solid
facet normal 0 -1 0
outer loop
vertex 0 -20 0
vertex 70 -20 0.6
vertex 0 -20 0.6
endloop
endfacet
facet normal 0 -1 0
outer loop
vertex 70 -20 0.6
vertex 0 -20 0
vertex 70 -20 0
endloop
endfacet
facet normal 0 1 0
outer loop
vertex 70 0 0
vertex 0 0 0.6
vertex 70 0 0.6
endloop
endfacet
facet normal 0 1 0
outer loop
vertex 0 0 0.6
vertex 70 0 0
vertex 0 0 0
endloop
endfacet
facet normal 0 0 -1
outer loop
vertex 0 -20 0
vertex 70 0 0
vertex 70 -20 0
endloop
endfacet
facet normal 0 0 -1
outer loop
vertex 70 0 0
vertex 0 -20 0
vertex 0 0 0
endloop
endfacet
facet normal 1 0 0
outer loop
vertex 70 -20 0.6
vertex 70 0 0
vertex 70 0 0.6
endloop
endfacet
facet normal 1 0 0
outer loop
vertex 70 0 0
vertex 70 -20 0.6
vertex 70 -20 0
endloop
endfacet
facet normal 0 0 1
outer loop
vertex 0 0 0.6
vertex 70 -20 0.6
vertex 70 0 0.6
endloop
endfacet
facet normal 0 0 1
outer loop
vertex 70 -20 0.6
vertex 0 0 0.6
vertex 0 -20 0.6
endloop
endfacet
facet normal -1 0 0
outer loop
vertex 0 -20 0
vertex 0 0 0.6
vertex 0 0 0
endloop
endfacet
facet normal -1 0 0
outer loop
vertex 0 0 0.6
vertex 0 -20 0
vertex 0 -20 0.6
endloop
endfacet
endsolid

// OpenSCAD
//use <C:/Users/rolan/Downloads/Atarian/SF Atarian System.ttf>

thick = 2;
xmax = 250;
ymax = 180+thick;
zmax = 39;

edge=5;

//translate([230,15,0])
//    ataritext();
rotate([90, 0, 0])
    cube([70, 0.6, 20]);
//ataritext();
/*
difference(){
    atarilogo();
//    translate([230,17,0])
//        ataritext();
}*/

module atarilogo() {
    translate([0,32.5,0])
        base_shape_a();
}

module ataritext() {
    linear_extrude(0.3)
        mirror([1,0,0])
        text("ATARI ", 10, "SF Atarian System:style=Regular");

    translate([-30, 0, 0])
    linear_extrude(0.4)
        mirror([1,0,0])
    text("SALLY 2 ", 8, "SF Atarian System:style=Regular");
}

module base_shape_a() {
        rotate([90,0,0]) 
            linear_extrude(20)
                base_shape_2d_a(1.0);
}


module base_shape_2d_a(th) {
    polygon([/* [0, zmax], */ [0, edge], [edge,0], [xmax-edge, 0], [xmax, edge], /*[xmax, zmax],[xmax-th,zmax],*/ [xmax-th, edge+th], [xmax-edge-th, th],[edge+th, th], [th, edge+th]/*,[th, zmax]*/]);
}
